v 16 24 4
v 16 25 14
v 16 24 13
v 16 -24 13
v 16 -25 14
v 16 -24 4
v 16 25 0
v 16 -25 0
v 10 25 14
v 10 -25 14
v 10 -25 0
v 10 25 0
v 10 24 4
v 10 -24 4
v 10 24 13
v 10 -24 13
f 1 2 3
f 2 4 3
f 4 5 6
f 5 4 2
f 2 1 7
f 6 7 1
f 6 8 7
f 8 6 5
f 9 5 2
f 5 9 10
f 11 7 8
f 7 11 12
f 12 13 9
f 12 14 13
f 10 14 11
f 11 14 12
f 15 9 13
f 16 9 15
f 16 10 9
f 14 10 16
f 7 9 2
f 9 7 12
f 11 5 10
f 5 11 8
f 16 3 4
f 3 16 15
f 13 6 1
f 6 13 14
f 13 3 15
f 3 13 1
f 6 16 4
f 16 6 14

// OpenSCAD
translate ([10, -25, 0]) {
    difference () {
        cube([6, 50, 14]);
        translate([-1, 1, 4]) {
            cube([8, 48, 9]);
        }
    }
}
